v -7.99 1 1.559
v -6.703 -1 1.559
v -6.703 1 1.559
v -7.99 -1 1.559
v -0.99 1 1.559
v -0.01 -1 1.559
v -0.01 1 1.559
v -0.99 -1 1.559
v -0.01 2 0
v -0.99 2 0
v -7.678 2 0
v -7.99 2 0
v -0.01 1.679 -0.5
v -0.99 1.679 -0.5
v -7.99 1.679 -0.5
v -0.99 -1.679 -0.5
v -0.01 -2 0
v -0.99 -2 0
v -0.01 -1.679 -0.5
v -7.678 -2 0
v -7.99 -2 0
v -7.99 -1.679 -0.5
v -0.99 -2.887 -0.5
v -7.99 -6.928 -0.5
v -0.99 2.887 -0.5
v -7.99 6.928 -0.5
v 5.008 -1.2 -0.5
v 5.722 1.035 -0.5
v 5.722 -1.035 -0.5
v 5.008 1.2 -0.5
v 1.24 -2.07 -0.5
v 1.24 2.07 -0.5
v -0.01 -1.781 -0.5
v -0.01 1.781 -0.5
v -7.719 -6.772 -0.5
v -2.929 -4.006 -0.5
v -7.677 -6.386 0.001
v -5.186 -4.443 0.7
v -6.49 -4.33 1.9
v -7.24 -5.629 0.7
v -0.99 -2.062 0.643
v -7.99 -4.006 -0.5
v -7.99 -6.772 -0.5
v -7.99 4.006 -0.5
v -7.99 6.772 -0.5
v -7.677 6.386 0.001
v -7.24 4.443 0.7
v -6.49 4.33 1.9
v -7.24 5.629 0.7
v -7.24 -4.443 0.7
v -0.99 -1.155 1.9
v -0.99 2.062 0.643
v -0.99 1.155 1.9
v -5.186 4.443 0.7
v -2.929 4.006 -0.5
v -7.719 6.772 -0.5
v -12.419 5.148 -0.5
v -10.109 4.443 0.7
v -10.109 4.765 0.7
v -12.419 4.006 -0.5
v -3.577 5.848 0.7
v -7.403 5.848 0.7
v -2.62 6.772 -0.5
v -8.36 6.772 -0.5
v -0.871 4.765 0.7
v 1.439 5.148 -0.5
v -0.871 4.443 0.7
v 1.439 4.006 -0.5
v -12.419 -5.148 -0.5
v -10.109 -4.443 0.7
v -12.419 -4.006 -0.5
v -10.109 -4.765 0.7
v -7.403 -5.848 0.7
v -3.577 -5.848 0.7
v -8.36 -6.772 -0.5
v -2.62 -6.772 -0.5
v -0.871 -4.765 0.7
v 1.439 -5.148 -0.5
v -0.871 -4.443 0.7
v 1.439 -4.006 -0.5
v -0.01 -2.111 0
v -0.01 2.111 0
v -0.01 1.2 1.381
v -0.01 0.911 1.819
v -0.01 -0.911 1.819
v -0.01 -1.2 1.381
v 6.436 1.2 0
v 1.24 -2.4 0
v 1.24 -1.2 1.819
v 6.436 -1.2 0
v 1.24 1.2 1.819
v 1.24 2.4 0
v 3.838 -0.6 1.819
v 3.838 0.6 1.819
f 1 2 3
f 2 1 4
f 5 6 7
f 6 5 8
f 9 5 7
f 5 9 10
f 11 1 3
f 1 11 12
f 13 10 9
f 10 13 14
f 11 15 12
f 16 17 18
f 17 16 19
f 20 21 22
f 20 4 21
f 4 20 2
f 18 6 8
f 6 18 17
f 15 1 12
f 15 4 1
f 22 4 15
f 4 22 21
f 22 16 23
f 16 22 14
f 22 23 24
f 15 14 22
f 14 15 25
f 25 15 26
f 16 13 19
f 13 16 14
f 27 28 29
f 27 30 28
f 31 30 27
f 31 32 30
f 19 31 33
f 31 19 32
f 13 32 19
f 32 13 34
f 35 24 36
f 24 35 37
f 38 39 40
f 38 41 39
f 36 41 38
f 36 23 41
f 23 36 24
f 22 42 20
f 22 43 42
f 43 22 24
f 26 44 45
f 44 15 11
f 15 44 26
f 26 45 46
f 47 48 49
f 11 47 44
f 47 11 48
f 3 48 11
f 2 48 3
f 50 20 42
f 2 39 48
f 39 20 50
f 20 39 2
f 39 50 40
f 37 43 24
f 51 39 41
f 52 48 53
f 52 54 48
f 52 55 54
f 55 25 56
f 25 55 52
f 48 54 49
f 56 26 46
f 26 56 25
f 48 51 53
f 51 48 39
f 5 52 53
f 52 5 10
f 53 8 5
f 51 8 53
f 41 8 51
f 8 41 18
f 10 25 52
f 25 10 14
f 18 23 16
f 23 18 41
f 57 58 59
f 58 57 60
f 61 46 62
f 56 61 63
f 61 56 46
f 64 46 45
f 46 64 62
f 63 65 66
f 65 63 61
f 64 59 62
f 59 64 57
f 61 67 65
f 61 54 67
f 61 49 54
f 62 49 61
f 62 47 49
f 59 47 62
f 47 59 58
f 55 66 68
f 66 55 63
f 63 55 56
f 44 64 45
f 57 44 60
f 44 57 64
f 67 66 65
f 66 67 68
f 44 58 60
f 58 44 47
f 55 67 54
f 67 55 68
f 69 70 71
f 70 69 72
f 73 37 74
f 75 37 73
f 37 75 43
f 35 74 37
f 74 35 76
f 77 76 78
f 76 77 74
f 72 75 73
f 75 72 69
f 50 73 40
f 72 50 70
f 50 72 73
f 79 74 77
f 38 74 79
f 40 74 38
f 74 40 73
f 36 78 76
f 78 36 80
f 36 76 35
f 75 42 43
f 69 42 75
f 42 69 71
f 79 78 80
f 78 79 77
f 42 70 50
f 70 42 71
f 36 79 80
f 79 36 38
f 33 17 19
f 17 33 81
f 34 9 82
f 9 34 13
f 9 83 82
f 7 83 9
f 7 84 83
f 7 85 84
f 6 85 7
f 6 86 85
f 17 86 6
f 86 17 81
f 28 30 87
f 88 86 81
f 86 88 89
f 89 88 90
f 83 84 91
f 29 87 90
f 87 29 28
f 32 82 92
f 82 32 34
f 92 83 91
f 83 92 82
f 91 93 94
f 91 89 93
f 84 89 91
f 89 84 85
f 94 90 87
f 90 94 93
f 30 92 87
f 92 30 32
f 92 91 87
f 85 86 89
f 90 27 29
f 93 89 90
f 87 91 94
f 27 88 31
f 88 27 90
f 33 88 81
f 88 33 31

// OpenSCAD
// file: ../lib/util.scad
fn1 = 32;
fn2 = 16;

module util_half_sphere(radius, fn=fn1) {
    difference() {
        sphere(radius, $fn=fn);
        translate([0,0,-(radius+radius/19)])
            cube(2*radius+radius/10, center=true);
    }
}

function gcd(a,b) = a == b ? a : a > b ? gcd(a-b, b) : gcd(a, b-a);

module util_saucer(length, width, height, fn=fn1) {
    rad = gcd(length,gcd(width,height));
    //rad = 10;
    scale([length/(2*rad), width/(2*rad), height/rad])
        util_half_sphere(rad, fn);
}

module util_half_cylinder(length, radius, inner_fn=fn2, outer_fn=fn1) {
    maxval = max(length, 2*radius);
    intersection() {
        difference() {
            rotate([0,90,0])
                translate([0,0,-(length/2 + length/20)])
                    cylinder(length+length/10, radius, radius, $fn=inner_fn);
            
            translate([0,0,(maxval/2 + maxval/19)])
                cube(maxval+maxval/10, center=true);
        }
        
        translate([0,0,-(radius+radius/20)])
            cylinder(radius + radius/10, length/2, length/2, $fn=outer_fn);
    }
}

module util_body(length, width, height, upper_height, fn=fn1) {
    rad = gcd(length, gcd(width, upper_height));
    
    scale(.995) scale([length/(2*rad), width/(2*rad), 1])
        util_half_cylinder(2*rad, height, outer_fn=fn);
}

module util_graded_cylinder(height, radius_start, radius_end, grades=1, fn=fn1) {
    height_grade = height / grades;
    radius_grade = (radius_start - radius_end) / (grades * grades);
    for (i = [0 : 1 : grades]) {
        translate([0,0,i*height_grade])
            cylinder(height_grade, 
                     radius_start - i*radius_grade * i,
                     radius_start - (i+1) * radius_grade * (i+1),
                     $fn = fn);
    }
}

module util_nacelle(length, width, height, curved=false, up=true, front_bulge=false) {
    rad = min(width, height/2);
    grads = curved ? 6 : 1;
    scale_factor = front_bulge ? 1.1 : 1;
    direction = up ? -1 : 1;
    difference() {
        scale([1, width/ (2*rad), height/rad])
            difference() {
                union() {
                    rotate([0,-90,0])
                        rotate(30)
                            util_graded_cylinder(length-rad, rad, rad/2, grads, 6);
                    scale(scale_factor) 
                        rotate([0,90,0]) rotate(90) sphere(rad, $fn=6);
                }
                
                translate([-length/2, 0, direction * (height/2 + height/19)])
                    cube([length+length, width+width, height+height/10], center=true);
            }
        
        translate([-length-(curved?length/3:0), 0, -length/3])
            rotate([0,-45,0])
                cube(length, center=true);
    }
}

module util_mirrored(v) {
    children();
    mirror(v) children();
}

module util_ring(outer, inner, height) {
    difference() {
        translate([0,0,-height/2])
            cylinder(height, outer, outer);
        translate([0,0,-(height/2 + height/19)])
            cylinder(height+height/10, inner, inner);
    }
}

module util_star(radius, thick, num, half=false) {
    angle = 360/num;
    offset = half? angle/2 : 0;
    for (i = [0: 1: num]) {
        rotate(i* angle + offset)
            translate([radius/2,0,0])
                cube([radius, thick, thick], center=true);
    }
}

module util_ring_star(radius, thick, num, inner, half=false) {
    outer=inner+thick;
    avg = (inner + outer)/2;
    union() {
        difference() {
            util_star(radius, thick, num, half);
            cylinder(2*thick, outer, outer, $fn=num, center=true);
        }
        util_ring(outer, inner, thick);
    }
}

module util_hangar_disk(height, lower, upper, num, fn=fn1) {
    difference() {
            cylinder(height, lower, upper, $fn=fn, center=true);
        difference() {
            scale([1,1,22])
                util_star(1.1*upper, height/20, num, half=true);
            scale(.95)
                cylinder(height, lower, upper, $fn=fn, center=true);
        }
    }
}

module util_hangar_form(length, width, height, num, inner=0) {
    l = 0.6* max(length, width);
    h = 2.5* height;
    thick = min(height/20,1);
    inner = inner == 0 ? l/3 : inner;
    difference() {
        children();
        scale([1,1,h/thick]) 
            util_ring_star(l, thick, num, inner, half=true);
    }
    scale(.95) children();
}

module util_nacelle_bar(span, height, width, thickness) {
    rad = (span*span/(8*height) + height/2);
    outer = rad + thickness/2;
    inner = rad - thickness/2;
    difference(){
        translate([0,0,outer])
            rotate([0,90,0])
                util_ring(outer, inner, width);
    
        translate([0,0,1.1*outer+height])
            cube(2.2*outer, center=true);
    }
}

module util_q_sphere(rad, quadrant, faces) {
    x_sign = quadrant == 1 ? 1 :
             quadrant == 2 ? -1 :
             quadrant == 3 ? -1 :
             quadrant == 4 ? 1 : 0;
    z_sign = quadrant == 1 ? 1 :
             quadrant == 2 ? 1 :
             quadrant == 3 ? -1 :
             quadrant == 4 ? -1 : 0;
    
    difference() {
        sphere(rad, $fn=faces);

        translate([x_sign*(-1.1*rad - .01),0,0])
        cube(2.2*rad, center=true);

        translate([0,0,z_sign*(-1.1*rad - .01)])
        cube(2.2*rad, center=true);
    }
}

module util_ovoid(front_rad, back_rad, width, upper_rad, lower_rad, faces=32) {
    half_width = width/2;
    largest=max(front_rad, back_rad, half_width, upper_rad, lower_rad);
    smallest=min(front_rad, back_rad, half_width, upper_rad, lower_rad);
    
    union() {
        scale([front_rad/smallest, half_width/smallest, upper_rad/smallest])
        util_q_sphere(smallest, 1, faces);
        
        scale([front_rad/smallest, half_width/smallest, lower_rad/smallest])
        util_q_sphere(smallest, 4, faces);
        
        scale([back_rad/smallest, half_width/smallest, lower_rad/smallest])
        util_q_sphere(smallest, 3, faces);
        
        scale([back_rad/smallest, half_width/smallest, upper_rad/smallest])
        util_q_sphere(smallest, 2, faces);
    }
}
// file: macs.scad
use <../lib/util.scad>;

module macs_pod_small() {
    difference() {
        scale([.5,.4,.35])
            rotate(90)
                sphere(6, $fn=6);
        macs_pod_diff();
    }
}

module macs_pod_diff() {
    translate([0,0,-(6+.5)])
        cube(12, center=true);

    translate([-(3+1.25),0,0])
        cube(6, center=true);
}

module macs_pod() {
    difference() {
        scale([1,.4,.35])
            rotate(90)
                sphere(6, $fn=6);
        macs_pod_diff();
    }
    
    //macs_pod_wing();
}

module macs_small_nacelle() {
    util_nacelle(7.5,1,1,curved=true, up=false);
}


module macs_pod_wing() {
    translate([-1,0,0])
        rotate([0,90,0])
            scale([.1,1,1])
                cylinder(2, 3.5, 2.75, $fn=6);
}

module macs_small_warp() {
    macs_corridor(4);

    translate([0,0,1.5])
        mirror([0,0,1])
            scale([1,1.2,0.8])
                util_nacelle_bar(7.5,2,2,.15);

    util_mirrored([0,1,0])
        translate([3,4.2,0])
            macs_small_nacelle();
    
    translate([0,0,1.5])
        rotate([0,90,0]) {
            translate([0,0,1.5]) sphere(.5, $fn=8);
            cylinder(3,.5,.5, center=true, $fn=8);
            translate([0,0,-1.5]) sphere(.5, $fn=8);
        }
}




module macs_extra_room() {
     macs_corridor(8);

     difference() {
         scale([1,1,.5])
            sphere(4, $fn=6);


        translate([0,0,-(6+.5)])
            cube(12, center=true);
    }
}

module macs_tactical_warp() {
    translate([0,0,0])
    macs_corridor(8);

    difference() {
        translate([0,0,-.5+1.2])
        cylinder(h=2.4,r1=8,r2=5,center=true,$fn=3);

        translate([4+3,0,0])
        cube(8, center=true);
    }

    util_mirrored([0,1,0])
    translate([-1.5,4,-.5+.6])
    scale([2.5,1,1])
    difference() {
        rotate(45/2)
        cylinder(h=1.2,r1=3,r2=2,center=true, $fn=8);
        
        translate([0,-3.5,0])
        rotate([-20,0,0])
        cube(7,center=true);
    }
}





module macs_corridor(length) {
    difference() {
        scale([1,1,.9])
            rotate([0,-90,0])
                rotate(90)
                    cylinder(length,2,2,$fn=6, center=true);
        translate([0,0,-(length*1.1/2 +.5)])
            cube(length*1.1, center=true);
    }
}

module macs_large_nacelle() {
    util_nacelle(23,2.5,2.5,curved=true,up=false);
}

module macs_large_warp(up=false) {
    macs_corridor(16);
    scale(1.5) macs_corridor(4);
    translate([0,0,.5]) {
        if(up) {
            util_nacelle_bar(25,2.5,2,.5);
        }
        else {
            mirror([0,0,1]) util_nacelle_bar(25,2.5,2,.5);
        };
    };
    
    if (up) {
        util_mirrored([0,1,0]) 
            translate([4,11,2.5]) 
                rotate([105,0,0])
                    macs_large_nacelle();
    } else {
        util_mirrored([0,1,0]) 
            translate([4,11,-2]) 
                rotate([75,0,0])
                    macs_large_nacelle();
    };
}



module macs_box() {
    scale([1,1.5,.5]) {
        rotate([0,90,0])
            rotate(180/8)
                cylinder(8,4,4, $fn=8, center=true);

        util_mirrored([1,0,0])
            translate([4,0,0])
                rotate([0,90,0])
                    rotate(180/8)
                        sphere(4, $fn=8);
    }
}



module macs_double_box() {
    union() {
        translate([-7,0,0]) macs_box();
        translate([7,0,0]) macs_box();
    }
}


module macs_disk(radius) {
    util_hangar_form(radius*2,radius*2,2,4,3) union () {
        translate([0,0,2]) cylinder(0.25, radius, radius-.5, center=true);
        cylinder(3.5, radius, radius, center=true);
        translate([0,0,-2]) cylinder(0.25, radius-.5, radius, center=true);
    }
    cylinder(4.5, 3,3, center=true);
}


module macs_cargo_element() {
    rotate([0,90,0]) scale([1,1,2]) macs_disk(6);
}

module macs_large_cargo() {
    translate([28,0,0]) macs_cargo_element();
    translate([20,0,0]) macs_cargo_element();
    translate([12,0,0]) macs_cargo_element();
    translate([4,0,0]) macs_cargo_element();
    translate([-4,0,0]) macs_cargo_element();
    translate([-12,0,0]) macs_cargo_element();
    translate([-20,0,0]) macs_cargo_element();
    translate([-28,0,0]) macs_cargo_element();

    translate([20,0,0]) cylinder(6.6,3,3);
    translate([-20,0,0]) cylinder(6.6,3,3);
}

    
// main file
use <macs.scad>;

module macs_fighter() {
    translate([-4+.01,0,0]) macs_tactical_warp();
    translate([1.25-.01,0,0]) macs_pod();
}
macs_fighter();
